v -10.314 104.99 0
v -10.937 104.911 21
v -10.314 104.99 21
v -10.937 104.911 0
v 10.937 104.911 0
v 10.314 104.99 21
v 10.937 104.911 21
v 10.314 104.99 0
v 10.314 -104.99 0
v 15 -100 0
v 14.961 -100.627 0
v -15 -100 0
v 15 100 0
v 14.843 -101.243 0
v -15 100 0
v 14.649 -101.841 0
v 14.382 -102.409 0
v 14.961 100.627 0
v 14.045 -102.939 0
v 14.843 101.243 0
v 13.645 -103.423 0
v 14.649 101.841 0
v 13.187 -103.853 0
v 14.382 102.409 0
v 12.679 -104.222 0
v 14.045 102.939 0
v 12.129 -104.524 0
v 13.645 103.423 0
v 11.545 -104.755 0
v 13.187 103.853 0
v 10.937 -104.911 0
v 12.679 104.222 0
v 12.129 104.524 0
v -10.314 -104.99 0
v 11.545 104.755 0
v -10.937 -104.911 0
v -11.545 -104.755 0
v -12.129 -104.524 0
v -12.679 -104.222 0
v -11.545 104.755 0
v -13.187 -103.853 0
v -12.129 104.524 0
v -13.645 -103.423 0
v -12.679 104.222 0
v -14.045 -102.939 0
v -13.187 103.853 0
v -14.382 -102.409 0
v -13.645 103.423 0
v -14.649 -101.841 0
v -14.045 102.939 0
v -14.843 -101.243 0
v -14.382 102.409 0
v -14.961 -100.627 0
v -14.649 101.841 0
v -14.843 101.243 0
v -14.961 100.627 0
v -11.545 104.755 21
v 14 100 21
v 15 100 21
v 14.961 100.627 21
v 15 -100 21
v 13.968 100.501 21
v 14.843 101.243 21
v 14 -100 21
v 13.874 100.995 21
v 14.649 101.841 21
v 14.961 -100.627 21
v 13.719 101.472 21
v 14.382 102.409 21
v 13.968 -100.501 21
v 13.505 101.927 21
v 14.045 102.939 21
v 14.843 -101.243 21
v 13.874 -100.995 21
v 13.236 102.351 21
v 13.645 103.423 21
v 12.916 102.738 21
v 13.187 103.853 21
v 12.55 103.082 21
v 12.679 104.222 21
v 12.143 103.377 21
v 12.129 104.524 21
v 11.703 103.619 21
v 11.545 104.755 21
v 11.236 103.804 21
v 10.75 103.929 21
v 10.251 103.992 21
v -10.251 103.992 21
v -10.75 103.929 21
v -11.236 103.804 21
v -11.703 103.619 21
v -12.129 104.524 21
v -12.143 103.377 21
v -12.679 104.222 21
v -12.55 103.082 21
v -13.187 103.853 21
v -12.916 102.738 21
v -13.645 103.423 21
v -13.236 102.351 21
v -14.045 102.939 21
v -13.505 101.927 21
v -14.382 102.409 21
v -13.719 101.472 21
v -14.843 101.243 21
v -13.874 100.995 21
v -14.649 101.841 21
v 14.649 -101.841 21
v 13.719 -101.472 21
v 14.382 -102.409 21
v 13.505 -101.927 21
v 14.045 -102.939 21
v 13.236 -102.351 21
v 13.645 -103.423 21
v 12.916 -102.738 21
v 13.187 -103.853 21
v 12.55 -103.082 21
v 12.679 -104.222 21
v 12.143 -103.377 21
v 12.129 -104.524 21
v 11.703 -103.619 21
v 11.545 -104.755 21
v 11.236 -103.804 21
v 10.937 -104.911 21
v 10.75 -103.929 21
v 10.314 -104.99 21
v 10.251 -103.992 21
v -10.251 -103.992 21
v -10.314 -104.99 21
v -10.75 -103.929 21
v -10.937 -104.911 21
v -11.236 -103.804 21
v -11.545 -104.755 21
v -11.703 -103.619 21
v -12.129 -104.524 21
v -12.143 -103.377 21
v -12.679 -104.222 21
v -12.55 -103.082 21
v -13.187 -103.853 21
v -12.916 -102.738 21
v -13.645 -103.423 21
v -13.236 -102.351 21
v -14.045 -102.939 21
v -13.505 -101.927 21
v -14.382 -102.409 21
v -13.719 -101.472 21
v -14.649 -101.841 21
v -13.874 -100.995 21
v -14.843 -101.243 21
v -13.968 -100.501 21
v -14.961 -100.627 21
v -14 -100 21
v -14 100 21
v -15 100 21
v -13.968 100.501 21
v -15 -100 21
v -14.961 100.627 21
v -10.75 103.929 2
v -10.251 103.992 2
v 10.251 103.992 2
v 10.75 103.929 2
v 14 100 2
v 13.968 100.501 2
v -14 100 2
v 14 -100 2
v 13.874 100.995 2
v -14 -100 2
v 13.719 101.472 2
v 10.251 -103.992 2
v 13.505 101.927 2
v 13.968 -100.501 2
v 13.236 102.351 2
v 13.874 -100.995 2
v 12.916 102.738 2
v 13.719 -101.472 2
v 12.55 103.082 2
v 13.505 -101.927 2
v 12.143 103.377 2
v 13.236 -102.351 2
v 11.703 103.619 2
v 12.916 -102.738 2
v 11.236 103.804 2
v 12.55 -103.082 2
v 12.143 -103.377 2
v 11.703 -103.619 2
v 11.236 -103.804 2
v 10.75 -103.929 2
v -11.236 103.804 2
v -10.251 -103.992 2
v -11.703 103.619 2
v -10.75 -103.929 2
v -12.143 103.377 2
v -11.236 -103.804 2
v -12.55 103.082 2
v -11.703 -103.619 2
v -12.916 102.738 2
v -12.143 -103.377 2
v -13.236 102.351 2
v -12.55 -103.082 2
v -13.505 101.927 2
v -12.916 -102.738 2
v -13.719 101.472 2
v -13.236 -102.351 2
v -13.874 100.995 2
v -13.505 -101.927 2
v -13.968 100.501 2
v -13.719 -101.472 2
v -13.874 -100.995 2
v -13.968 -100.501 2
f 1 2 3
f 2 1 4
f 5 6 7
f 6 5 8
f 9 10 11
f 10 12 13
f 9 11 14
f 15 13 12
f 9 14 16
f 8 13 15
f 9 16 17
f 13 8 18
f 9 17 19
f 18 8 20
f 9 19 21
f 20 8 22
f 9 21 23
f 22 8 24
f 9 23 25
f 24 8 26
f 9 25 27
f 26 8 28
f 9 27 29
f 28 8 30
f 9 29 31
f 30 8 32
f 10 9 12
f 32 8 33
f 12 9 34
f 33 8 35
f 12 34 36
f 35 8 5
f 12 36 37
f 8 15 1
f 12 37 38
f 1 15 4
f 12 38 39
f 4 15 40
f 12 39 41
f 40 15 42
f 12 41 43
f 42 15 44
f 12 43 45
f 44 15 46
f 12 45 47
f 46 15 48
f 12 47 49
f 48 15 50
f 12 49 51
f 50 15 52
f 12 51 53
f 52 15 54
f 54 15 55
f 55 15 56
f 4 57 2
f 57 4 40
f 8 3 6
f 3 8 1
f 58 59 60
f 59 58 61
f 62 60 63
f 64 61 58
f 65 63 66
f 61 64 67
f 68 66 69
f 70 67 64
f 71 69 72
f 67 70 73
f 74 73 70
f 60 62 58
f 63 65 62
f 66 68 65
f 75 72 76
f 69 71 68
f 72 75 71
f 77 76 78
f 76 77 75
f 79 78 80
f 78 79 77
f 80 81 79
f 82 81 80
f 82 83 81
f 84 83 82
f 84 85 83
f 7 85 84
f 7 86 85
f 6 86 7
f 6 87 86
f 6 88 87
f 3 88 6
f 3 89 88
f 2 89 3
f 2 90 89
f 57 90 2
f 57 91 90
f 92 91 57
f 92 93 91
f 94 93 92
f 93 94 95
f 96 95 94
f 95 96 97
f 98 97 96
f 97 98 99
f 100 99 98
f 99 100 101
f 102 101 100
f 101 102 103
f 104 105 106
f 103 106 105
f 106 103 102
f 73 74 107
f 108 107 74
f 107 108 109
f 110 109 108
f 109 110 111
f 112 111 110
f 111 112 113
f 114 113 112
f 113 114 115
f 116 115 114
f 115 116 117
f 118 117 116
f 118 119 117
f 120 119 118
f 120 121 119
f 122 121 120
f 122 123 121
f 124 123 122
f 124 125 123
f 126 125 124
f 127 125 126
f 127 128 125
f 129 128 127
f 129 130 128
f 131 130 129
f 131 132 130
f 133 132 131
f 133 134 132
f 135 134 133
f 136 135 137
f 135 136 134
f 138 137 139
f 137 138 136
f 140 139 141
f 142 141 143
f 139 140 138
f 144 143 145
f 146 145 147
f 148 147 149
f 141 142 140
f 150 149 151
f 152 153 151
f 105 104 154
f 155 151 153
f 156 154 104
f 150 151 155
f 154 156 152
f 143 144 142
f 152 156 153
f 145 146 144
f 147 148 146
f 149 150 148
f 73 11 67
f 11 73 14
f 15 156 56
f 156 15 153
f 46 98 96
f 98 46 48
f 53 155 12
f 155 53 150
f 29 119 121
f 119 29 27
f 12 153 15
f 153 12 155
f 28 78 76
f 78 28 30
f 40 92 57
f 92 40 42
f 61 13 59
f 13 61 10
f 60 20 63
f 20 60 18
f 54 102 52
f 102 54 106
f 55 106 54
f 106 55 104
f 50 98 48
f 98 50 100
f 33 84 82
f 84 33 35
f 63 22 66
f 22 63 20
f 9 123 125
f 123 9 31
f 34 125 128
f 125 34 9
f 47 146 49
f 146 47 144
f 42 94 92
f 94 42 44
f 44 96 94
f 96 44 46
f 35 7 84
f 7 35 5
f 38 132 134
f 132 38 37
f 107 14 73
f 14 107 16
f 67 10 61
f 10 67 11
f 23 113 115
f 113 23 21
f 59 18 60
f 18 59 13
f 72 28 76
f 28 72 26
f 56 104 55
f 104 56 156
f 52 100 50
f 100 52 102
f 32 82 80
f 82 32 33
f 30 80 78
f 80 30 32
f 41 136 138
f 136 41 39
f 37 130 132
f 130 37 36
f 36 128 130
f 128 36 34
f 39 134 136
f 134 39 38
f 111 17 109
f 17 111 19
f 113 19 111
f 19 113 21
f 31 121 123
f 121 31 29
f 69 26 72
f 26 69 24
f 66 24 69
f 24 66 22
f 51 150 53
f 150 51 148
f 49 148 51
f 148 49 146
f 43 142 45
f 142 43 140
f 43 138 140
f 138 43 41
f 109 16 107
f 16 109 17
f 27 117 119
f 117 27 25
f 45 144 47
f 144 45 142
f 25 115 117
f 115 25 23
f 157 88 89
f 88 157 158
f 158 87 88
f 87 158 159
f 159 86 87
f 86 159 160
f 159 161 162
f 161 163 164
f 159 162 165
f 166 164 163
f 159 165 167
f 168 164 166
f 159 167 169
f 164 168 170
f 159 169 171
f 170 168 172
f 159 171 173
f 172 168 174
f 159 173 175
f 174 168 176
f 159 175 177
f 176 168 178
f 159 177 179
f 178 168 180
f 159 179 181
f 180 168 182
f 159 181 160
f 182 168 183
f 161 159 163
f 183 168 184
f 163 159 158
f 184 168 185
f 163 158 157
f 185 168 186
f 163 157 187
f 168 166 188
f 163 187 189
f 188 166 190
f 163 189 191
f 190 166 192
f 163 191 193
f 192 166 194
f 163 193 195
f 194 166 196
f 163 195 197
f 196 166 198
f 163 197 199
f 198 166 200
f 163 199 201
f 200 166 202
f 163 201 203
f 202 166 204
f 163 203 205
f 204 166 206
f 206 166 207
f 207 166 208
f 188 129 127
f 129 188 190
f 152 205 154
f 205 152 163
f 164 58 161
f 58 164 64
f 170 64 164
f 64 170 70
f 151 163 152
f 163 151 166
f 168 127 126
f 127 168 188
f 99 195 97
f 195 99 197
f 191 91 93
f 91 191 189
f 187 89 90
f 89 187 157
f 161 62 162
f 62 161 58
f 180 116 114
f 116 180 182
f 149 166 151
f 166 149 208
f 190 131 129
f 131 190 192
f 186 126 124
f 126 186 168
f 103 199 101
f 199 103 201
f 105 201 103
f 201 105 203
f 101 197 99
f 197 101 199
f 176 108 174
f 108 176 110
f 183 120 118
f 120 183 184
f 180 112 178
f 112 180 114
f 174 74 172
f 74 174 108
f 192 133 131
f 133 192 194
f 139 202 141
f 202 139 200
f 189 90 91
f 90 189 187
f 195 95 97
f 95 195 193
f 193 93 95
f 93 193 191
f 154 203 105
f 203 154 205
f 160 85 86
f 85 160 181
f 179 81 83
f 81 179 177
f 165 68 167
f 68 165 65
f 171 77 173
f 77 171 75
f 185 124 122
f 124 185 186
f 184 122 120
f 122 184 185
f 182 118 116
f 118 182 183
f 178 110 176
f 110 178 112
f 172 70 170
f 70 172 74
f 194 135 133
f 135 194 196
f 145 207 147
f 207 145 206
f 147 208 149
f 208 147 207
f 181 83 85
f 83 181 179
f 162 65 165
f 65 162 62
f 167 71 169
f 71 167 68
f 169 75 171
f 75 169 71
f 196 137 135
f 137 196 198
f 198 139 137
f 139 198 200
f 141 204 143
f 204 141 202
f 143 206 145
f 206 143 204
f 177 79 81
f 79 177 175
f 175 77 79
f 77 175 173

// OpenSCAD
$fn = 50;


difference() {
	union() {
		hull() {
			translate(v = [-10.0000000000, 100.0000000000, 0]) {
				cylinder(h = 21, r = 5);
			}
			translate(v = [10.0000000000, 100.0000000000, 0]) {
				cylinder(h = 21, r = 5);
			}
			translate(v = [-10.0000000000, -100.0000000000, 0]) {
				cylinder(h = 21, r = 5);
			}
			translate(v = [10.0000000000, -100.0000000000, 0]) {
				cylinder(h = 21, r = 5);
			}
		}
	}
	union() {
		translate(v = [0, 0, 2]) {
			hull() {
				translate(v = [-10.0000000000, 100.0000000000, 0]) {
					cylinder(h = 19, r = 4);
				}
				translate(v = [10.0000000000, 100.0000000000, 0]) {
					cylinder(h = 19, r = 4);
				}
				translate(v = [-10.0000000000, -100.0000000000, 0]) {
					cylinder(h = 19, r = 4);
				}
				translate(v = [10.0000000000, -100.0000000000, 0]) {
					cylinder(h = 19, r = 4);
				}
			}
		}
	}
}
